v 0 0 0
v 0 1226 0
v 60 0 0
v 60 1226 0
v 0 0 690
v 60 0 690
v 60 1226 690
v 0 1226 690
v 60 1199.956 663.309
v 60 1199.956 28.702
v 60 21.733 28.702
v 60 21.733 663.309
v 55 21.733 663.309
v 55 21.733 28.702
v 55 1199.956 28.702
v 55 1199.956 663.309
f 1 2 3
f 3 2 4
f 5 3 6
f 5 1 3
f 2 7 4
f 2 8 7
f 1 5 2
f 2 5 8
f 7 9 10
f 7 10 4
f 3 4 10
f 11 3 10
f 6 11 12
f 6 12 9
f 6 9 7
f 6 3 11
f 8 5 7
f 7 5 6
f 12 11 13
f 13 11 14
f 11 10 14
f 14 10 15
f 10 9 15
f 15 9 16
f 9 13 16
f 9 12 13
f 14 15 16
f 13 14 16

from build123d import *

# Parameters (mm, degrees)
SKETCH_W     = 1226
SKETCH_H     = 690
PAD_DEPTH    = 60
SKETCH001_W  = 1178.222099
SKETCH001_H  = 634.606854
POCKET_DEPTH = 5


with BuildPart() as part:
    # Sketch → Pad (new body)
    with BuildSketch(Plane.YZ):
        with Locations((613, 345)):
            Rectangle(SKETCH_W, SKETCH_H)
    extrude(amount=PAD_DEPTH)

    # Sketch001 (on Face6 of Pad) → Pocket (cut)
    with BuildSketch(Plane.YZ.offset(60)):
        with Locations((610.844516, 346.005472)):
            Rectangle(SKETCH001_W, SKETCH001_H)
    extrude(amount=-POCKET_DEPTH, mode=Mode.SUBTRACT)


solid = part.part
